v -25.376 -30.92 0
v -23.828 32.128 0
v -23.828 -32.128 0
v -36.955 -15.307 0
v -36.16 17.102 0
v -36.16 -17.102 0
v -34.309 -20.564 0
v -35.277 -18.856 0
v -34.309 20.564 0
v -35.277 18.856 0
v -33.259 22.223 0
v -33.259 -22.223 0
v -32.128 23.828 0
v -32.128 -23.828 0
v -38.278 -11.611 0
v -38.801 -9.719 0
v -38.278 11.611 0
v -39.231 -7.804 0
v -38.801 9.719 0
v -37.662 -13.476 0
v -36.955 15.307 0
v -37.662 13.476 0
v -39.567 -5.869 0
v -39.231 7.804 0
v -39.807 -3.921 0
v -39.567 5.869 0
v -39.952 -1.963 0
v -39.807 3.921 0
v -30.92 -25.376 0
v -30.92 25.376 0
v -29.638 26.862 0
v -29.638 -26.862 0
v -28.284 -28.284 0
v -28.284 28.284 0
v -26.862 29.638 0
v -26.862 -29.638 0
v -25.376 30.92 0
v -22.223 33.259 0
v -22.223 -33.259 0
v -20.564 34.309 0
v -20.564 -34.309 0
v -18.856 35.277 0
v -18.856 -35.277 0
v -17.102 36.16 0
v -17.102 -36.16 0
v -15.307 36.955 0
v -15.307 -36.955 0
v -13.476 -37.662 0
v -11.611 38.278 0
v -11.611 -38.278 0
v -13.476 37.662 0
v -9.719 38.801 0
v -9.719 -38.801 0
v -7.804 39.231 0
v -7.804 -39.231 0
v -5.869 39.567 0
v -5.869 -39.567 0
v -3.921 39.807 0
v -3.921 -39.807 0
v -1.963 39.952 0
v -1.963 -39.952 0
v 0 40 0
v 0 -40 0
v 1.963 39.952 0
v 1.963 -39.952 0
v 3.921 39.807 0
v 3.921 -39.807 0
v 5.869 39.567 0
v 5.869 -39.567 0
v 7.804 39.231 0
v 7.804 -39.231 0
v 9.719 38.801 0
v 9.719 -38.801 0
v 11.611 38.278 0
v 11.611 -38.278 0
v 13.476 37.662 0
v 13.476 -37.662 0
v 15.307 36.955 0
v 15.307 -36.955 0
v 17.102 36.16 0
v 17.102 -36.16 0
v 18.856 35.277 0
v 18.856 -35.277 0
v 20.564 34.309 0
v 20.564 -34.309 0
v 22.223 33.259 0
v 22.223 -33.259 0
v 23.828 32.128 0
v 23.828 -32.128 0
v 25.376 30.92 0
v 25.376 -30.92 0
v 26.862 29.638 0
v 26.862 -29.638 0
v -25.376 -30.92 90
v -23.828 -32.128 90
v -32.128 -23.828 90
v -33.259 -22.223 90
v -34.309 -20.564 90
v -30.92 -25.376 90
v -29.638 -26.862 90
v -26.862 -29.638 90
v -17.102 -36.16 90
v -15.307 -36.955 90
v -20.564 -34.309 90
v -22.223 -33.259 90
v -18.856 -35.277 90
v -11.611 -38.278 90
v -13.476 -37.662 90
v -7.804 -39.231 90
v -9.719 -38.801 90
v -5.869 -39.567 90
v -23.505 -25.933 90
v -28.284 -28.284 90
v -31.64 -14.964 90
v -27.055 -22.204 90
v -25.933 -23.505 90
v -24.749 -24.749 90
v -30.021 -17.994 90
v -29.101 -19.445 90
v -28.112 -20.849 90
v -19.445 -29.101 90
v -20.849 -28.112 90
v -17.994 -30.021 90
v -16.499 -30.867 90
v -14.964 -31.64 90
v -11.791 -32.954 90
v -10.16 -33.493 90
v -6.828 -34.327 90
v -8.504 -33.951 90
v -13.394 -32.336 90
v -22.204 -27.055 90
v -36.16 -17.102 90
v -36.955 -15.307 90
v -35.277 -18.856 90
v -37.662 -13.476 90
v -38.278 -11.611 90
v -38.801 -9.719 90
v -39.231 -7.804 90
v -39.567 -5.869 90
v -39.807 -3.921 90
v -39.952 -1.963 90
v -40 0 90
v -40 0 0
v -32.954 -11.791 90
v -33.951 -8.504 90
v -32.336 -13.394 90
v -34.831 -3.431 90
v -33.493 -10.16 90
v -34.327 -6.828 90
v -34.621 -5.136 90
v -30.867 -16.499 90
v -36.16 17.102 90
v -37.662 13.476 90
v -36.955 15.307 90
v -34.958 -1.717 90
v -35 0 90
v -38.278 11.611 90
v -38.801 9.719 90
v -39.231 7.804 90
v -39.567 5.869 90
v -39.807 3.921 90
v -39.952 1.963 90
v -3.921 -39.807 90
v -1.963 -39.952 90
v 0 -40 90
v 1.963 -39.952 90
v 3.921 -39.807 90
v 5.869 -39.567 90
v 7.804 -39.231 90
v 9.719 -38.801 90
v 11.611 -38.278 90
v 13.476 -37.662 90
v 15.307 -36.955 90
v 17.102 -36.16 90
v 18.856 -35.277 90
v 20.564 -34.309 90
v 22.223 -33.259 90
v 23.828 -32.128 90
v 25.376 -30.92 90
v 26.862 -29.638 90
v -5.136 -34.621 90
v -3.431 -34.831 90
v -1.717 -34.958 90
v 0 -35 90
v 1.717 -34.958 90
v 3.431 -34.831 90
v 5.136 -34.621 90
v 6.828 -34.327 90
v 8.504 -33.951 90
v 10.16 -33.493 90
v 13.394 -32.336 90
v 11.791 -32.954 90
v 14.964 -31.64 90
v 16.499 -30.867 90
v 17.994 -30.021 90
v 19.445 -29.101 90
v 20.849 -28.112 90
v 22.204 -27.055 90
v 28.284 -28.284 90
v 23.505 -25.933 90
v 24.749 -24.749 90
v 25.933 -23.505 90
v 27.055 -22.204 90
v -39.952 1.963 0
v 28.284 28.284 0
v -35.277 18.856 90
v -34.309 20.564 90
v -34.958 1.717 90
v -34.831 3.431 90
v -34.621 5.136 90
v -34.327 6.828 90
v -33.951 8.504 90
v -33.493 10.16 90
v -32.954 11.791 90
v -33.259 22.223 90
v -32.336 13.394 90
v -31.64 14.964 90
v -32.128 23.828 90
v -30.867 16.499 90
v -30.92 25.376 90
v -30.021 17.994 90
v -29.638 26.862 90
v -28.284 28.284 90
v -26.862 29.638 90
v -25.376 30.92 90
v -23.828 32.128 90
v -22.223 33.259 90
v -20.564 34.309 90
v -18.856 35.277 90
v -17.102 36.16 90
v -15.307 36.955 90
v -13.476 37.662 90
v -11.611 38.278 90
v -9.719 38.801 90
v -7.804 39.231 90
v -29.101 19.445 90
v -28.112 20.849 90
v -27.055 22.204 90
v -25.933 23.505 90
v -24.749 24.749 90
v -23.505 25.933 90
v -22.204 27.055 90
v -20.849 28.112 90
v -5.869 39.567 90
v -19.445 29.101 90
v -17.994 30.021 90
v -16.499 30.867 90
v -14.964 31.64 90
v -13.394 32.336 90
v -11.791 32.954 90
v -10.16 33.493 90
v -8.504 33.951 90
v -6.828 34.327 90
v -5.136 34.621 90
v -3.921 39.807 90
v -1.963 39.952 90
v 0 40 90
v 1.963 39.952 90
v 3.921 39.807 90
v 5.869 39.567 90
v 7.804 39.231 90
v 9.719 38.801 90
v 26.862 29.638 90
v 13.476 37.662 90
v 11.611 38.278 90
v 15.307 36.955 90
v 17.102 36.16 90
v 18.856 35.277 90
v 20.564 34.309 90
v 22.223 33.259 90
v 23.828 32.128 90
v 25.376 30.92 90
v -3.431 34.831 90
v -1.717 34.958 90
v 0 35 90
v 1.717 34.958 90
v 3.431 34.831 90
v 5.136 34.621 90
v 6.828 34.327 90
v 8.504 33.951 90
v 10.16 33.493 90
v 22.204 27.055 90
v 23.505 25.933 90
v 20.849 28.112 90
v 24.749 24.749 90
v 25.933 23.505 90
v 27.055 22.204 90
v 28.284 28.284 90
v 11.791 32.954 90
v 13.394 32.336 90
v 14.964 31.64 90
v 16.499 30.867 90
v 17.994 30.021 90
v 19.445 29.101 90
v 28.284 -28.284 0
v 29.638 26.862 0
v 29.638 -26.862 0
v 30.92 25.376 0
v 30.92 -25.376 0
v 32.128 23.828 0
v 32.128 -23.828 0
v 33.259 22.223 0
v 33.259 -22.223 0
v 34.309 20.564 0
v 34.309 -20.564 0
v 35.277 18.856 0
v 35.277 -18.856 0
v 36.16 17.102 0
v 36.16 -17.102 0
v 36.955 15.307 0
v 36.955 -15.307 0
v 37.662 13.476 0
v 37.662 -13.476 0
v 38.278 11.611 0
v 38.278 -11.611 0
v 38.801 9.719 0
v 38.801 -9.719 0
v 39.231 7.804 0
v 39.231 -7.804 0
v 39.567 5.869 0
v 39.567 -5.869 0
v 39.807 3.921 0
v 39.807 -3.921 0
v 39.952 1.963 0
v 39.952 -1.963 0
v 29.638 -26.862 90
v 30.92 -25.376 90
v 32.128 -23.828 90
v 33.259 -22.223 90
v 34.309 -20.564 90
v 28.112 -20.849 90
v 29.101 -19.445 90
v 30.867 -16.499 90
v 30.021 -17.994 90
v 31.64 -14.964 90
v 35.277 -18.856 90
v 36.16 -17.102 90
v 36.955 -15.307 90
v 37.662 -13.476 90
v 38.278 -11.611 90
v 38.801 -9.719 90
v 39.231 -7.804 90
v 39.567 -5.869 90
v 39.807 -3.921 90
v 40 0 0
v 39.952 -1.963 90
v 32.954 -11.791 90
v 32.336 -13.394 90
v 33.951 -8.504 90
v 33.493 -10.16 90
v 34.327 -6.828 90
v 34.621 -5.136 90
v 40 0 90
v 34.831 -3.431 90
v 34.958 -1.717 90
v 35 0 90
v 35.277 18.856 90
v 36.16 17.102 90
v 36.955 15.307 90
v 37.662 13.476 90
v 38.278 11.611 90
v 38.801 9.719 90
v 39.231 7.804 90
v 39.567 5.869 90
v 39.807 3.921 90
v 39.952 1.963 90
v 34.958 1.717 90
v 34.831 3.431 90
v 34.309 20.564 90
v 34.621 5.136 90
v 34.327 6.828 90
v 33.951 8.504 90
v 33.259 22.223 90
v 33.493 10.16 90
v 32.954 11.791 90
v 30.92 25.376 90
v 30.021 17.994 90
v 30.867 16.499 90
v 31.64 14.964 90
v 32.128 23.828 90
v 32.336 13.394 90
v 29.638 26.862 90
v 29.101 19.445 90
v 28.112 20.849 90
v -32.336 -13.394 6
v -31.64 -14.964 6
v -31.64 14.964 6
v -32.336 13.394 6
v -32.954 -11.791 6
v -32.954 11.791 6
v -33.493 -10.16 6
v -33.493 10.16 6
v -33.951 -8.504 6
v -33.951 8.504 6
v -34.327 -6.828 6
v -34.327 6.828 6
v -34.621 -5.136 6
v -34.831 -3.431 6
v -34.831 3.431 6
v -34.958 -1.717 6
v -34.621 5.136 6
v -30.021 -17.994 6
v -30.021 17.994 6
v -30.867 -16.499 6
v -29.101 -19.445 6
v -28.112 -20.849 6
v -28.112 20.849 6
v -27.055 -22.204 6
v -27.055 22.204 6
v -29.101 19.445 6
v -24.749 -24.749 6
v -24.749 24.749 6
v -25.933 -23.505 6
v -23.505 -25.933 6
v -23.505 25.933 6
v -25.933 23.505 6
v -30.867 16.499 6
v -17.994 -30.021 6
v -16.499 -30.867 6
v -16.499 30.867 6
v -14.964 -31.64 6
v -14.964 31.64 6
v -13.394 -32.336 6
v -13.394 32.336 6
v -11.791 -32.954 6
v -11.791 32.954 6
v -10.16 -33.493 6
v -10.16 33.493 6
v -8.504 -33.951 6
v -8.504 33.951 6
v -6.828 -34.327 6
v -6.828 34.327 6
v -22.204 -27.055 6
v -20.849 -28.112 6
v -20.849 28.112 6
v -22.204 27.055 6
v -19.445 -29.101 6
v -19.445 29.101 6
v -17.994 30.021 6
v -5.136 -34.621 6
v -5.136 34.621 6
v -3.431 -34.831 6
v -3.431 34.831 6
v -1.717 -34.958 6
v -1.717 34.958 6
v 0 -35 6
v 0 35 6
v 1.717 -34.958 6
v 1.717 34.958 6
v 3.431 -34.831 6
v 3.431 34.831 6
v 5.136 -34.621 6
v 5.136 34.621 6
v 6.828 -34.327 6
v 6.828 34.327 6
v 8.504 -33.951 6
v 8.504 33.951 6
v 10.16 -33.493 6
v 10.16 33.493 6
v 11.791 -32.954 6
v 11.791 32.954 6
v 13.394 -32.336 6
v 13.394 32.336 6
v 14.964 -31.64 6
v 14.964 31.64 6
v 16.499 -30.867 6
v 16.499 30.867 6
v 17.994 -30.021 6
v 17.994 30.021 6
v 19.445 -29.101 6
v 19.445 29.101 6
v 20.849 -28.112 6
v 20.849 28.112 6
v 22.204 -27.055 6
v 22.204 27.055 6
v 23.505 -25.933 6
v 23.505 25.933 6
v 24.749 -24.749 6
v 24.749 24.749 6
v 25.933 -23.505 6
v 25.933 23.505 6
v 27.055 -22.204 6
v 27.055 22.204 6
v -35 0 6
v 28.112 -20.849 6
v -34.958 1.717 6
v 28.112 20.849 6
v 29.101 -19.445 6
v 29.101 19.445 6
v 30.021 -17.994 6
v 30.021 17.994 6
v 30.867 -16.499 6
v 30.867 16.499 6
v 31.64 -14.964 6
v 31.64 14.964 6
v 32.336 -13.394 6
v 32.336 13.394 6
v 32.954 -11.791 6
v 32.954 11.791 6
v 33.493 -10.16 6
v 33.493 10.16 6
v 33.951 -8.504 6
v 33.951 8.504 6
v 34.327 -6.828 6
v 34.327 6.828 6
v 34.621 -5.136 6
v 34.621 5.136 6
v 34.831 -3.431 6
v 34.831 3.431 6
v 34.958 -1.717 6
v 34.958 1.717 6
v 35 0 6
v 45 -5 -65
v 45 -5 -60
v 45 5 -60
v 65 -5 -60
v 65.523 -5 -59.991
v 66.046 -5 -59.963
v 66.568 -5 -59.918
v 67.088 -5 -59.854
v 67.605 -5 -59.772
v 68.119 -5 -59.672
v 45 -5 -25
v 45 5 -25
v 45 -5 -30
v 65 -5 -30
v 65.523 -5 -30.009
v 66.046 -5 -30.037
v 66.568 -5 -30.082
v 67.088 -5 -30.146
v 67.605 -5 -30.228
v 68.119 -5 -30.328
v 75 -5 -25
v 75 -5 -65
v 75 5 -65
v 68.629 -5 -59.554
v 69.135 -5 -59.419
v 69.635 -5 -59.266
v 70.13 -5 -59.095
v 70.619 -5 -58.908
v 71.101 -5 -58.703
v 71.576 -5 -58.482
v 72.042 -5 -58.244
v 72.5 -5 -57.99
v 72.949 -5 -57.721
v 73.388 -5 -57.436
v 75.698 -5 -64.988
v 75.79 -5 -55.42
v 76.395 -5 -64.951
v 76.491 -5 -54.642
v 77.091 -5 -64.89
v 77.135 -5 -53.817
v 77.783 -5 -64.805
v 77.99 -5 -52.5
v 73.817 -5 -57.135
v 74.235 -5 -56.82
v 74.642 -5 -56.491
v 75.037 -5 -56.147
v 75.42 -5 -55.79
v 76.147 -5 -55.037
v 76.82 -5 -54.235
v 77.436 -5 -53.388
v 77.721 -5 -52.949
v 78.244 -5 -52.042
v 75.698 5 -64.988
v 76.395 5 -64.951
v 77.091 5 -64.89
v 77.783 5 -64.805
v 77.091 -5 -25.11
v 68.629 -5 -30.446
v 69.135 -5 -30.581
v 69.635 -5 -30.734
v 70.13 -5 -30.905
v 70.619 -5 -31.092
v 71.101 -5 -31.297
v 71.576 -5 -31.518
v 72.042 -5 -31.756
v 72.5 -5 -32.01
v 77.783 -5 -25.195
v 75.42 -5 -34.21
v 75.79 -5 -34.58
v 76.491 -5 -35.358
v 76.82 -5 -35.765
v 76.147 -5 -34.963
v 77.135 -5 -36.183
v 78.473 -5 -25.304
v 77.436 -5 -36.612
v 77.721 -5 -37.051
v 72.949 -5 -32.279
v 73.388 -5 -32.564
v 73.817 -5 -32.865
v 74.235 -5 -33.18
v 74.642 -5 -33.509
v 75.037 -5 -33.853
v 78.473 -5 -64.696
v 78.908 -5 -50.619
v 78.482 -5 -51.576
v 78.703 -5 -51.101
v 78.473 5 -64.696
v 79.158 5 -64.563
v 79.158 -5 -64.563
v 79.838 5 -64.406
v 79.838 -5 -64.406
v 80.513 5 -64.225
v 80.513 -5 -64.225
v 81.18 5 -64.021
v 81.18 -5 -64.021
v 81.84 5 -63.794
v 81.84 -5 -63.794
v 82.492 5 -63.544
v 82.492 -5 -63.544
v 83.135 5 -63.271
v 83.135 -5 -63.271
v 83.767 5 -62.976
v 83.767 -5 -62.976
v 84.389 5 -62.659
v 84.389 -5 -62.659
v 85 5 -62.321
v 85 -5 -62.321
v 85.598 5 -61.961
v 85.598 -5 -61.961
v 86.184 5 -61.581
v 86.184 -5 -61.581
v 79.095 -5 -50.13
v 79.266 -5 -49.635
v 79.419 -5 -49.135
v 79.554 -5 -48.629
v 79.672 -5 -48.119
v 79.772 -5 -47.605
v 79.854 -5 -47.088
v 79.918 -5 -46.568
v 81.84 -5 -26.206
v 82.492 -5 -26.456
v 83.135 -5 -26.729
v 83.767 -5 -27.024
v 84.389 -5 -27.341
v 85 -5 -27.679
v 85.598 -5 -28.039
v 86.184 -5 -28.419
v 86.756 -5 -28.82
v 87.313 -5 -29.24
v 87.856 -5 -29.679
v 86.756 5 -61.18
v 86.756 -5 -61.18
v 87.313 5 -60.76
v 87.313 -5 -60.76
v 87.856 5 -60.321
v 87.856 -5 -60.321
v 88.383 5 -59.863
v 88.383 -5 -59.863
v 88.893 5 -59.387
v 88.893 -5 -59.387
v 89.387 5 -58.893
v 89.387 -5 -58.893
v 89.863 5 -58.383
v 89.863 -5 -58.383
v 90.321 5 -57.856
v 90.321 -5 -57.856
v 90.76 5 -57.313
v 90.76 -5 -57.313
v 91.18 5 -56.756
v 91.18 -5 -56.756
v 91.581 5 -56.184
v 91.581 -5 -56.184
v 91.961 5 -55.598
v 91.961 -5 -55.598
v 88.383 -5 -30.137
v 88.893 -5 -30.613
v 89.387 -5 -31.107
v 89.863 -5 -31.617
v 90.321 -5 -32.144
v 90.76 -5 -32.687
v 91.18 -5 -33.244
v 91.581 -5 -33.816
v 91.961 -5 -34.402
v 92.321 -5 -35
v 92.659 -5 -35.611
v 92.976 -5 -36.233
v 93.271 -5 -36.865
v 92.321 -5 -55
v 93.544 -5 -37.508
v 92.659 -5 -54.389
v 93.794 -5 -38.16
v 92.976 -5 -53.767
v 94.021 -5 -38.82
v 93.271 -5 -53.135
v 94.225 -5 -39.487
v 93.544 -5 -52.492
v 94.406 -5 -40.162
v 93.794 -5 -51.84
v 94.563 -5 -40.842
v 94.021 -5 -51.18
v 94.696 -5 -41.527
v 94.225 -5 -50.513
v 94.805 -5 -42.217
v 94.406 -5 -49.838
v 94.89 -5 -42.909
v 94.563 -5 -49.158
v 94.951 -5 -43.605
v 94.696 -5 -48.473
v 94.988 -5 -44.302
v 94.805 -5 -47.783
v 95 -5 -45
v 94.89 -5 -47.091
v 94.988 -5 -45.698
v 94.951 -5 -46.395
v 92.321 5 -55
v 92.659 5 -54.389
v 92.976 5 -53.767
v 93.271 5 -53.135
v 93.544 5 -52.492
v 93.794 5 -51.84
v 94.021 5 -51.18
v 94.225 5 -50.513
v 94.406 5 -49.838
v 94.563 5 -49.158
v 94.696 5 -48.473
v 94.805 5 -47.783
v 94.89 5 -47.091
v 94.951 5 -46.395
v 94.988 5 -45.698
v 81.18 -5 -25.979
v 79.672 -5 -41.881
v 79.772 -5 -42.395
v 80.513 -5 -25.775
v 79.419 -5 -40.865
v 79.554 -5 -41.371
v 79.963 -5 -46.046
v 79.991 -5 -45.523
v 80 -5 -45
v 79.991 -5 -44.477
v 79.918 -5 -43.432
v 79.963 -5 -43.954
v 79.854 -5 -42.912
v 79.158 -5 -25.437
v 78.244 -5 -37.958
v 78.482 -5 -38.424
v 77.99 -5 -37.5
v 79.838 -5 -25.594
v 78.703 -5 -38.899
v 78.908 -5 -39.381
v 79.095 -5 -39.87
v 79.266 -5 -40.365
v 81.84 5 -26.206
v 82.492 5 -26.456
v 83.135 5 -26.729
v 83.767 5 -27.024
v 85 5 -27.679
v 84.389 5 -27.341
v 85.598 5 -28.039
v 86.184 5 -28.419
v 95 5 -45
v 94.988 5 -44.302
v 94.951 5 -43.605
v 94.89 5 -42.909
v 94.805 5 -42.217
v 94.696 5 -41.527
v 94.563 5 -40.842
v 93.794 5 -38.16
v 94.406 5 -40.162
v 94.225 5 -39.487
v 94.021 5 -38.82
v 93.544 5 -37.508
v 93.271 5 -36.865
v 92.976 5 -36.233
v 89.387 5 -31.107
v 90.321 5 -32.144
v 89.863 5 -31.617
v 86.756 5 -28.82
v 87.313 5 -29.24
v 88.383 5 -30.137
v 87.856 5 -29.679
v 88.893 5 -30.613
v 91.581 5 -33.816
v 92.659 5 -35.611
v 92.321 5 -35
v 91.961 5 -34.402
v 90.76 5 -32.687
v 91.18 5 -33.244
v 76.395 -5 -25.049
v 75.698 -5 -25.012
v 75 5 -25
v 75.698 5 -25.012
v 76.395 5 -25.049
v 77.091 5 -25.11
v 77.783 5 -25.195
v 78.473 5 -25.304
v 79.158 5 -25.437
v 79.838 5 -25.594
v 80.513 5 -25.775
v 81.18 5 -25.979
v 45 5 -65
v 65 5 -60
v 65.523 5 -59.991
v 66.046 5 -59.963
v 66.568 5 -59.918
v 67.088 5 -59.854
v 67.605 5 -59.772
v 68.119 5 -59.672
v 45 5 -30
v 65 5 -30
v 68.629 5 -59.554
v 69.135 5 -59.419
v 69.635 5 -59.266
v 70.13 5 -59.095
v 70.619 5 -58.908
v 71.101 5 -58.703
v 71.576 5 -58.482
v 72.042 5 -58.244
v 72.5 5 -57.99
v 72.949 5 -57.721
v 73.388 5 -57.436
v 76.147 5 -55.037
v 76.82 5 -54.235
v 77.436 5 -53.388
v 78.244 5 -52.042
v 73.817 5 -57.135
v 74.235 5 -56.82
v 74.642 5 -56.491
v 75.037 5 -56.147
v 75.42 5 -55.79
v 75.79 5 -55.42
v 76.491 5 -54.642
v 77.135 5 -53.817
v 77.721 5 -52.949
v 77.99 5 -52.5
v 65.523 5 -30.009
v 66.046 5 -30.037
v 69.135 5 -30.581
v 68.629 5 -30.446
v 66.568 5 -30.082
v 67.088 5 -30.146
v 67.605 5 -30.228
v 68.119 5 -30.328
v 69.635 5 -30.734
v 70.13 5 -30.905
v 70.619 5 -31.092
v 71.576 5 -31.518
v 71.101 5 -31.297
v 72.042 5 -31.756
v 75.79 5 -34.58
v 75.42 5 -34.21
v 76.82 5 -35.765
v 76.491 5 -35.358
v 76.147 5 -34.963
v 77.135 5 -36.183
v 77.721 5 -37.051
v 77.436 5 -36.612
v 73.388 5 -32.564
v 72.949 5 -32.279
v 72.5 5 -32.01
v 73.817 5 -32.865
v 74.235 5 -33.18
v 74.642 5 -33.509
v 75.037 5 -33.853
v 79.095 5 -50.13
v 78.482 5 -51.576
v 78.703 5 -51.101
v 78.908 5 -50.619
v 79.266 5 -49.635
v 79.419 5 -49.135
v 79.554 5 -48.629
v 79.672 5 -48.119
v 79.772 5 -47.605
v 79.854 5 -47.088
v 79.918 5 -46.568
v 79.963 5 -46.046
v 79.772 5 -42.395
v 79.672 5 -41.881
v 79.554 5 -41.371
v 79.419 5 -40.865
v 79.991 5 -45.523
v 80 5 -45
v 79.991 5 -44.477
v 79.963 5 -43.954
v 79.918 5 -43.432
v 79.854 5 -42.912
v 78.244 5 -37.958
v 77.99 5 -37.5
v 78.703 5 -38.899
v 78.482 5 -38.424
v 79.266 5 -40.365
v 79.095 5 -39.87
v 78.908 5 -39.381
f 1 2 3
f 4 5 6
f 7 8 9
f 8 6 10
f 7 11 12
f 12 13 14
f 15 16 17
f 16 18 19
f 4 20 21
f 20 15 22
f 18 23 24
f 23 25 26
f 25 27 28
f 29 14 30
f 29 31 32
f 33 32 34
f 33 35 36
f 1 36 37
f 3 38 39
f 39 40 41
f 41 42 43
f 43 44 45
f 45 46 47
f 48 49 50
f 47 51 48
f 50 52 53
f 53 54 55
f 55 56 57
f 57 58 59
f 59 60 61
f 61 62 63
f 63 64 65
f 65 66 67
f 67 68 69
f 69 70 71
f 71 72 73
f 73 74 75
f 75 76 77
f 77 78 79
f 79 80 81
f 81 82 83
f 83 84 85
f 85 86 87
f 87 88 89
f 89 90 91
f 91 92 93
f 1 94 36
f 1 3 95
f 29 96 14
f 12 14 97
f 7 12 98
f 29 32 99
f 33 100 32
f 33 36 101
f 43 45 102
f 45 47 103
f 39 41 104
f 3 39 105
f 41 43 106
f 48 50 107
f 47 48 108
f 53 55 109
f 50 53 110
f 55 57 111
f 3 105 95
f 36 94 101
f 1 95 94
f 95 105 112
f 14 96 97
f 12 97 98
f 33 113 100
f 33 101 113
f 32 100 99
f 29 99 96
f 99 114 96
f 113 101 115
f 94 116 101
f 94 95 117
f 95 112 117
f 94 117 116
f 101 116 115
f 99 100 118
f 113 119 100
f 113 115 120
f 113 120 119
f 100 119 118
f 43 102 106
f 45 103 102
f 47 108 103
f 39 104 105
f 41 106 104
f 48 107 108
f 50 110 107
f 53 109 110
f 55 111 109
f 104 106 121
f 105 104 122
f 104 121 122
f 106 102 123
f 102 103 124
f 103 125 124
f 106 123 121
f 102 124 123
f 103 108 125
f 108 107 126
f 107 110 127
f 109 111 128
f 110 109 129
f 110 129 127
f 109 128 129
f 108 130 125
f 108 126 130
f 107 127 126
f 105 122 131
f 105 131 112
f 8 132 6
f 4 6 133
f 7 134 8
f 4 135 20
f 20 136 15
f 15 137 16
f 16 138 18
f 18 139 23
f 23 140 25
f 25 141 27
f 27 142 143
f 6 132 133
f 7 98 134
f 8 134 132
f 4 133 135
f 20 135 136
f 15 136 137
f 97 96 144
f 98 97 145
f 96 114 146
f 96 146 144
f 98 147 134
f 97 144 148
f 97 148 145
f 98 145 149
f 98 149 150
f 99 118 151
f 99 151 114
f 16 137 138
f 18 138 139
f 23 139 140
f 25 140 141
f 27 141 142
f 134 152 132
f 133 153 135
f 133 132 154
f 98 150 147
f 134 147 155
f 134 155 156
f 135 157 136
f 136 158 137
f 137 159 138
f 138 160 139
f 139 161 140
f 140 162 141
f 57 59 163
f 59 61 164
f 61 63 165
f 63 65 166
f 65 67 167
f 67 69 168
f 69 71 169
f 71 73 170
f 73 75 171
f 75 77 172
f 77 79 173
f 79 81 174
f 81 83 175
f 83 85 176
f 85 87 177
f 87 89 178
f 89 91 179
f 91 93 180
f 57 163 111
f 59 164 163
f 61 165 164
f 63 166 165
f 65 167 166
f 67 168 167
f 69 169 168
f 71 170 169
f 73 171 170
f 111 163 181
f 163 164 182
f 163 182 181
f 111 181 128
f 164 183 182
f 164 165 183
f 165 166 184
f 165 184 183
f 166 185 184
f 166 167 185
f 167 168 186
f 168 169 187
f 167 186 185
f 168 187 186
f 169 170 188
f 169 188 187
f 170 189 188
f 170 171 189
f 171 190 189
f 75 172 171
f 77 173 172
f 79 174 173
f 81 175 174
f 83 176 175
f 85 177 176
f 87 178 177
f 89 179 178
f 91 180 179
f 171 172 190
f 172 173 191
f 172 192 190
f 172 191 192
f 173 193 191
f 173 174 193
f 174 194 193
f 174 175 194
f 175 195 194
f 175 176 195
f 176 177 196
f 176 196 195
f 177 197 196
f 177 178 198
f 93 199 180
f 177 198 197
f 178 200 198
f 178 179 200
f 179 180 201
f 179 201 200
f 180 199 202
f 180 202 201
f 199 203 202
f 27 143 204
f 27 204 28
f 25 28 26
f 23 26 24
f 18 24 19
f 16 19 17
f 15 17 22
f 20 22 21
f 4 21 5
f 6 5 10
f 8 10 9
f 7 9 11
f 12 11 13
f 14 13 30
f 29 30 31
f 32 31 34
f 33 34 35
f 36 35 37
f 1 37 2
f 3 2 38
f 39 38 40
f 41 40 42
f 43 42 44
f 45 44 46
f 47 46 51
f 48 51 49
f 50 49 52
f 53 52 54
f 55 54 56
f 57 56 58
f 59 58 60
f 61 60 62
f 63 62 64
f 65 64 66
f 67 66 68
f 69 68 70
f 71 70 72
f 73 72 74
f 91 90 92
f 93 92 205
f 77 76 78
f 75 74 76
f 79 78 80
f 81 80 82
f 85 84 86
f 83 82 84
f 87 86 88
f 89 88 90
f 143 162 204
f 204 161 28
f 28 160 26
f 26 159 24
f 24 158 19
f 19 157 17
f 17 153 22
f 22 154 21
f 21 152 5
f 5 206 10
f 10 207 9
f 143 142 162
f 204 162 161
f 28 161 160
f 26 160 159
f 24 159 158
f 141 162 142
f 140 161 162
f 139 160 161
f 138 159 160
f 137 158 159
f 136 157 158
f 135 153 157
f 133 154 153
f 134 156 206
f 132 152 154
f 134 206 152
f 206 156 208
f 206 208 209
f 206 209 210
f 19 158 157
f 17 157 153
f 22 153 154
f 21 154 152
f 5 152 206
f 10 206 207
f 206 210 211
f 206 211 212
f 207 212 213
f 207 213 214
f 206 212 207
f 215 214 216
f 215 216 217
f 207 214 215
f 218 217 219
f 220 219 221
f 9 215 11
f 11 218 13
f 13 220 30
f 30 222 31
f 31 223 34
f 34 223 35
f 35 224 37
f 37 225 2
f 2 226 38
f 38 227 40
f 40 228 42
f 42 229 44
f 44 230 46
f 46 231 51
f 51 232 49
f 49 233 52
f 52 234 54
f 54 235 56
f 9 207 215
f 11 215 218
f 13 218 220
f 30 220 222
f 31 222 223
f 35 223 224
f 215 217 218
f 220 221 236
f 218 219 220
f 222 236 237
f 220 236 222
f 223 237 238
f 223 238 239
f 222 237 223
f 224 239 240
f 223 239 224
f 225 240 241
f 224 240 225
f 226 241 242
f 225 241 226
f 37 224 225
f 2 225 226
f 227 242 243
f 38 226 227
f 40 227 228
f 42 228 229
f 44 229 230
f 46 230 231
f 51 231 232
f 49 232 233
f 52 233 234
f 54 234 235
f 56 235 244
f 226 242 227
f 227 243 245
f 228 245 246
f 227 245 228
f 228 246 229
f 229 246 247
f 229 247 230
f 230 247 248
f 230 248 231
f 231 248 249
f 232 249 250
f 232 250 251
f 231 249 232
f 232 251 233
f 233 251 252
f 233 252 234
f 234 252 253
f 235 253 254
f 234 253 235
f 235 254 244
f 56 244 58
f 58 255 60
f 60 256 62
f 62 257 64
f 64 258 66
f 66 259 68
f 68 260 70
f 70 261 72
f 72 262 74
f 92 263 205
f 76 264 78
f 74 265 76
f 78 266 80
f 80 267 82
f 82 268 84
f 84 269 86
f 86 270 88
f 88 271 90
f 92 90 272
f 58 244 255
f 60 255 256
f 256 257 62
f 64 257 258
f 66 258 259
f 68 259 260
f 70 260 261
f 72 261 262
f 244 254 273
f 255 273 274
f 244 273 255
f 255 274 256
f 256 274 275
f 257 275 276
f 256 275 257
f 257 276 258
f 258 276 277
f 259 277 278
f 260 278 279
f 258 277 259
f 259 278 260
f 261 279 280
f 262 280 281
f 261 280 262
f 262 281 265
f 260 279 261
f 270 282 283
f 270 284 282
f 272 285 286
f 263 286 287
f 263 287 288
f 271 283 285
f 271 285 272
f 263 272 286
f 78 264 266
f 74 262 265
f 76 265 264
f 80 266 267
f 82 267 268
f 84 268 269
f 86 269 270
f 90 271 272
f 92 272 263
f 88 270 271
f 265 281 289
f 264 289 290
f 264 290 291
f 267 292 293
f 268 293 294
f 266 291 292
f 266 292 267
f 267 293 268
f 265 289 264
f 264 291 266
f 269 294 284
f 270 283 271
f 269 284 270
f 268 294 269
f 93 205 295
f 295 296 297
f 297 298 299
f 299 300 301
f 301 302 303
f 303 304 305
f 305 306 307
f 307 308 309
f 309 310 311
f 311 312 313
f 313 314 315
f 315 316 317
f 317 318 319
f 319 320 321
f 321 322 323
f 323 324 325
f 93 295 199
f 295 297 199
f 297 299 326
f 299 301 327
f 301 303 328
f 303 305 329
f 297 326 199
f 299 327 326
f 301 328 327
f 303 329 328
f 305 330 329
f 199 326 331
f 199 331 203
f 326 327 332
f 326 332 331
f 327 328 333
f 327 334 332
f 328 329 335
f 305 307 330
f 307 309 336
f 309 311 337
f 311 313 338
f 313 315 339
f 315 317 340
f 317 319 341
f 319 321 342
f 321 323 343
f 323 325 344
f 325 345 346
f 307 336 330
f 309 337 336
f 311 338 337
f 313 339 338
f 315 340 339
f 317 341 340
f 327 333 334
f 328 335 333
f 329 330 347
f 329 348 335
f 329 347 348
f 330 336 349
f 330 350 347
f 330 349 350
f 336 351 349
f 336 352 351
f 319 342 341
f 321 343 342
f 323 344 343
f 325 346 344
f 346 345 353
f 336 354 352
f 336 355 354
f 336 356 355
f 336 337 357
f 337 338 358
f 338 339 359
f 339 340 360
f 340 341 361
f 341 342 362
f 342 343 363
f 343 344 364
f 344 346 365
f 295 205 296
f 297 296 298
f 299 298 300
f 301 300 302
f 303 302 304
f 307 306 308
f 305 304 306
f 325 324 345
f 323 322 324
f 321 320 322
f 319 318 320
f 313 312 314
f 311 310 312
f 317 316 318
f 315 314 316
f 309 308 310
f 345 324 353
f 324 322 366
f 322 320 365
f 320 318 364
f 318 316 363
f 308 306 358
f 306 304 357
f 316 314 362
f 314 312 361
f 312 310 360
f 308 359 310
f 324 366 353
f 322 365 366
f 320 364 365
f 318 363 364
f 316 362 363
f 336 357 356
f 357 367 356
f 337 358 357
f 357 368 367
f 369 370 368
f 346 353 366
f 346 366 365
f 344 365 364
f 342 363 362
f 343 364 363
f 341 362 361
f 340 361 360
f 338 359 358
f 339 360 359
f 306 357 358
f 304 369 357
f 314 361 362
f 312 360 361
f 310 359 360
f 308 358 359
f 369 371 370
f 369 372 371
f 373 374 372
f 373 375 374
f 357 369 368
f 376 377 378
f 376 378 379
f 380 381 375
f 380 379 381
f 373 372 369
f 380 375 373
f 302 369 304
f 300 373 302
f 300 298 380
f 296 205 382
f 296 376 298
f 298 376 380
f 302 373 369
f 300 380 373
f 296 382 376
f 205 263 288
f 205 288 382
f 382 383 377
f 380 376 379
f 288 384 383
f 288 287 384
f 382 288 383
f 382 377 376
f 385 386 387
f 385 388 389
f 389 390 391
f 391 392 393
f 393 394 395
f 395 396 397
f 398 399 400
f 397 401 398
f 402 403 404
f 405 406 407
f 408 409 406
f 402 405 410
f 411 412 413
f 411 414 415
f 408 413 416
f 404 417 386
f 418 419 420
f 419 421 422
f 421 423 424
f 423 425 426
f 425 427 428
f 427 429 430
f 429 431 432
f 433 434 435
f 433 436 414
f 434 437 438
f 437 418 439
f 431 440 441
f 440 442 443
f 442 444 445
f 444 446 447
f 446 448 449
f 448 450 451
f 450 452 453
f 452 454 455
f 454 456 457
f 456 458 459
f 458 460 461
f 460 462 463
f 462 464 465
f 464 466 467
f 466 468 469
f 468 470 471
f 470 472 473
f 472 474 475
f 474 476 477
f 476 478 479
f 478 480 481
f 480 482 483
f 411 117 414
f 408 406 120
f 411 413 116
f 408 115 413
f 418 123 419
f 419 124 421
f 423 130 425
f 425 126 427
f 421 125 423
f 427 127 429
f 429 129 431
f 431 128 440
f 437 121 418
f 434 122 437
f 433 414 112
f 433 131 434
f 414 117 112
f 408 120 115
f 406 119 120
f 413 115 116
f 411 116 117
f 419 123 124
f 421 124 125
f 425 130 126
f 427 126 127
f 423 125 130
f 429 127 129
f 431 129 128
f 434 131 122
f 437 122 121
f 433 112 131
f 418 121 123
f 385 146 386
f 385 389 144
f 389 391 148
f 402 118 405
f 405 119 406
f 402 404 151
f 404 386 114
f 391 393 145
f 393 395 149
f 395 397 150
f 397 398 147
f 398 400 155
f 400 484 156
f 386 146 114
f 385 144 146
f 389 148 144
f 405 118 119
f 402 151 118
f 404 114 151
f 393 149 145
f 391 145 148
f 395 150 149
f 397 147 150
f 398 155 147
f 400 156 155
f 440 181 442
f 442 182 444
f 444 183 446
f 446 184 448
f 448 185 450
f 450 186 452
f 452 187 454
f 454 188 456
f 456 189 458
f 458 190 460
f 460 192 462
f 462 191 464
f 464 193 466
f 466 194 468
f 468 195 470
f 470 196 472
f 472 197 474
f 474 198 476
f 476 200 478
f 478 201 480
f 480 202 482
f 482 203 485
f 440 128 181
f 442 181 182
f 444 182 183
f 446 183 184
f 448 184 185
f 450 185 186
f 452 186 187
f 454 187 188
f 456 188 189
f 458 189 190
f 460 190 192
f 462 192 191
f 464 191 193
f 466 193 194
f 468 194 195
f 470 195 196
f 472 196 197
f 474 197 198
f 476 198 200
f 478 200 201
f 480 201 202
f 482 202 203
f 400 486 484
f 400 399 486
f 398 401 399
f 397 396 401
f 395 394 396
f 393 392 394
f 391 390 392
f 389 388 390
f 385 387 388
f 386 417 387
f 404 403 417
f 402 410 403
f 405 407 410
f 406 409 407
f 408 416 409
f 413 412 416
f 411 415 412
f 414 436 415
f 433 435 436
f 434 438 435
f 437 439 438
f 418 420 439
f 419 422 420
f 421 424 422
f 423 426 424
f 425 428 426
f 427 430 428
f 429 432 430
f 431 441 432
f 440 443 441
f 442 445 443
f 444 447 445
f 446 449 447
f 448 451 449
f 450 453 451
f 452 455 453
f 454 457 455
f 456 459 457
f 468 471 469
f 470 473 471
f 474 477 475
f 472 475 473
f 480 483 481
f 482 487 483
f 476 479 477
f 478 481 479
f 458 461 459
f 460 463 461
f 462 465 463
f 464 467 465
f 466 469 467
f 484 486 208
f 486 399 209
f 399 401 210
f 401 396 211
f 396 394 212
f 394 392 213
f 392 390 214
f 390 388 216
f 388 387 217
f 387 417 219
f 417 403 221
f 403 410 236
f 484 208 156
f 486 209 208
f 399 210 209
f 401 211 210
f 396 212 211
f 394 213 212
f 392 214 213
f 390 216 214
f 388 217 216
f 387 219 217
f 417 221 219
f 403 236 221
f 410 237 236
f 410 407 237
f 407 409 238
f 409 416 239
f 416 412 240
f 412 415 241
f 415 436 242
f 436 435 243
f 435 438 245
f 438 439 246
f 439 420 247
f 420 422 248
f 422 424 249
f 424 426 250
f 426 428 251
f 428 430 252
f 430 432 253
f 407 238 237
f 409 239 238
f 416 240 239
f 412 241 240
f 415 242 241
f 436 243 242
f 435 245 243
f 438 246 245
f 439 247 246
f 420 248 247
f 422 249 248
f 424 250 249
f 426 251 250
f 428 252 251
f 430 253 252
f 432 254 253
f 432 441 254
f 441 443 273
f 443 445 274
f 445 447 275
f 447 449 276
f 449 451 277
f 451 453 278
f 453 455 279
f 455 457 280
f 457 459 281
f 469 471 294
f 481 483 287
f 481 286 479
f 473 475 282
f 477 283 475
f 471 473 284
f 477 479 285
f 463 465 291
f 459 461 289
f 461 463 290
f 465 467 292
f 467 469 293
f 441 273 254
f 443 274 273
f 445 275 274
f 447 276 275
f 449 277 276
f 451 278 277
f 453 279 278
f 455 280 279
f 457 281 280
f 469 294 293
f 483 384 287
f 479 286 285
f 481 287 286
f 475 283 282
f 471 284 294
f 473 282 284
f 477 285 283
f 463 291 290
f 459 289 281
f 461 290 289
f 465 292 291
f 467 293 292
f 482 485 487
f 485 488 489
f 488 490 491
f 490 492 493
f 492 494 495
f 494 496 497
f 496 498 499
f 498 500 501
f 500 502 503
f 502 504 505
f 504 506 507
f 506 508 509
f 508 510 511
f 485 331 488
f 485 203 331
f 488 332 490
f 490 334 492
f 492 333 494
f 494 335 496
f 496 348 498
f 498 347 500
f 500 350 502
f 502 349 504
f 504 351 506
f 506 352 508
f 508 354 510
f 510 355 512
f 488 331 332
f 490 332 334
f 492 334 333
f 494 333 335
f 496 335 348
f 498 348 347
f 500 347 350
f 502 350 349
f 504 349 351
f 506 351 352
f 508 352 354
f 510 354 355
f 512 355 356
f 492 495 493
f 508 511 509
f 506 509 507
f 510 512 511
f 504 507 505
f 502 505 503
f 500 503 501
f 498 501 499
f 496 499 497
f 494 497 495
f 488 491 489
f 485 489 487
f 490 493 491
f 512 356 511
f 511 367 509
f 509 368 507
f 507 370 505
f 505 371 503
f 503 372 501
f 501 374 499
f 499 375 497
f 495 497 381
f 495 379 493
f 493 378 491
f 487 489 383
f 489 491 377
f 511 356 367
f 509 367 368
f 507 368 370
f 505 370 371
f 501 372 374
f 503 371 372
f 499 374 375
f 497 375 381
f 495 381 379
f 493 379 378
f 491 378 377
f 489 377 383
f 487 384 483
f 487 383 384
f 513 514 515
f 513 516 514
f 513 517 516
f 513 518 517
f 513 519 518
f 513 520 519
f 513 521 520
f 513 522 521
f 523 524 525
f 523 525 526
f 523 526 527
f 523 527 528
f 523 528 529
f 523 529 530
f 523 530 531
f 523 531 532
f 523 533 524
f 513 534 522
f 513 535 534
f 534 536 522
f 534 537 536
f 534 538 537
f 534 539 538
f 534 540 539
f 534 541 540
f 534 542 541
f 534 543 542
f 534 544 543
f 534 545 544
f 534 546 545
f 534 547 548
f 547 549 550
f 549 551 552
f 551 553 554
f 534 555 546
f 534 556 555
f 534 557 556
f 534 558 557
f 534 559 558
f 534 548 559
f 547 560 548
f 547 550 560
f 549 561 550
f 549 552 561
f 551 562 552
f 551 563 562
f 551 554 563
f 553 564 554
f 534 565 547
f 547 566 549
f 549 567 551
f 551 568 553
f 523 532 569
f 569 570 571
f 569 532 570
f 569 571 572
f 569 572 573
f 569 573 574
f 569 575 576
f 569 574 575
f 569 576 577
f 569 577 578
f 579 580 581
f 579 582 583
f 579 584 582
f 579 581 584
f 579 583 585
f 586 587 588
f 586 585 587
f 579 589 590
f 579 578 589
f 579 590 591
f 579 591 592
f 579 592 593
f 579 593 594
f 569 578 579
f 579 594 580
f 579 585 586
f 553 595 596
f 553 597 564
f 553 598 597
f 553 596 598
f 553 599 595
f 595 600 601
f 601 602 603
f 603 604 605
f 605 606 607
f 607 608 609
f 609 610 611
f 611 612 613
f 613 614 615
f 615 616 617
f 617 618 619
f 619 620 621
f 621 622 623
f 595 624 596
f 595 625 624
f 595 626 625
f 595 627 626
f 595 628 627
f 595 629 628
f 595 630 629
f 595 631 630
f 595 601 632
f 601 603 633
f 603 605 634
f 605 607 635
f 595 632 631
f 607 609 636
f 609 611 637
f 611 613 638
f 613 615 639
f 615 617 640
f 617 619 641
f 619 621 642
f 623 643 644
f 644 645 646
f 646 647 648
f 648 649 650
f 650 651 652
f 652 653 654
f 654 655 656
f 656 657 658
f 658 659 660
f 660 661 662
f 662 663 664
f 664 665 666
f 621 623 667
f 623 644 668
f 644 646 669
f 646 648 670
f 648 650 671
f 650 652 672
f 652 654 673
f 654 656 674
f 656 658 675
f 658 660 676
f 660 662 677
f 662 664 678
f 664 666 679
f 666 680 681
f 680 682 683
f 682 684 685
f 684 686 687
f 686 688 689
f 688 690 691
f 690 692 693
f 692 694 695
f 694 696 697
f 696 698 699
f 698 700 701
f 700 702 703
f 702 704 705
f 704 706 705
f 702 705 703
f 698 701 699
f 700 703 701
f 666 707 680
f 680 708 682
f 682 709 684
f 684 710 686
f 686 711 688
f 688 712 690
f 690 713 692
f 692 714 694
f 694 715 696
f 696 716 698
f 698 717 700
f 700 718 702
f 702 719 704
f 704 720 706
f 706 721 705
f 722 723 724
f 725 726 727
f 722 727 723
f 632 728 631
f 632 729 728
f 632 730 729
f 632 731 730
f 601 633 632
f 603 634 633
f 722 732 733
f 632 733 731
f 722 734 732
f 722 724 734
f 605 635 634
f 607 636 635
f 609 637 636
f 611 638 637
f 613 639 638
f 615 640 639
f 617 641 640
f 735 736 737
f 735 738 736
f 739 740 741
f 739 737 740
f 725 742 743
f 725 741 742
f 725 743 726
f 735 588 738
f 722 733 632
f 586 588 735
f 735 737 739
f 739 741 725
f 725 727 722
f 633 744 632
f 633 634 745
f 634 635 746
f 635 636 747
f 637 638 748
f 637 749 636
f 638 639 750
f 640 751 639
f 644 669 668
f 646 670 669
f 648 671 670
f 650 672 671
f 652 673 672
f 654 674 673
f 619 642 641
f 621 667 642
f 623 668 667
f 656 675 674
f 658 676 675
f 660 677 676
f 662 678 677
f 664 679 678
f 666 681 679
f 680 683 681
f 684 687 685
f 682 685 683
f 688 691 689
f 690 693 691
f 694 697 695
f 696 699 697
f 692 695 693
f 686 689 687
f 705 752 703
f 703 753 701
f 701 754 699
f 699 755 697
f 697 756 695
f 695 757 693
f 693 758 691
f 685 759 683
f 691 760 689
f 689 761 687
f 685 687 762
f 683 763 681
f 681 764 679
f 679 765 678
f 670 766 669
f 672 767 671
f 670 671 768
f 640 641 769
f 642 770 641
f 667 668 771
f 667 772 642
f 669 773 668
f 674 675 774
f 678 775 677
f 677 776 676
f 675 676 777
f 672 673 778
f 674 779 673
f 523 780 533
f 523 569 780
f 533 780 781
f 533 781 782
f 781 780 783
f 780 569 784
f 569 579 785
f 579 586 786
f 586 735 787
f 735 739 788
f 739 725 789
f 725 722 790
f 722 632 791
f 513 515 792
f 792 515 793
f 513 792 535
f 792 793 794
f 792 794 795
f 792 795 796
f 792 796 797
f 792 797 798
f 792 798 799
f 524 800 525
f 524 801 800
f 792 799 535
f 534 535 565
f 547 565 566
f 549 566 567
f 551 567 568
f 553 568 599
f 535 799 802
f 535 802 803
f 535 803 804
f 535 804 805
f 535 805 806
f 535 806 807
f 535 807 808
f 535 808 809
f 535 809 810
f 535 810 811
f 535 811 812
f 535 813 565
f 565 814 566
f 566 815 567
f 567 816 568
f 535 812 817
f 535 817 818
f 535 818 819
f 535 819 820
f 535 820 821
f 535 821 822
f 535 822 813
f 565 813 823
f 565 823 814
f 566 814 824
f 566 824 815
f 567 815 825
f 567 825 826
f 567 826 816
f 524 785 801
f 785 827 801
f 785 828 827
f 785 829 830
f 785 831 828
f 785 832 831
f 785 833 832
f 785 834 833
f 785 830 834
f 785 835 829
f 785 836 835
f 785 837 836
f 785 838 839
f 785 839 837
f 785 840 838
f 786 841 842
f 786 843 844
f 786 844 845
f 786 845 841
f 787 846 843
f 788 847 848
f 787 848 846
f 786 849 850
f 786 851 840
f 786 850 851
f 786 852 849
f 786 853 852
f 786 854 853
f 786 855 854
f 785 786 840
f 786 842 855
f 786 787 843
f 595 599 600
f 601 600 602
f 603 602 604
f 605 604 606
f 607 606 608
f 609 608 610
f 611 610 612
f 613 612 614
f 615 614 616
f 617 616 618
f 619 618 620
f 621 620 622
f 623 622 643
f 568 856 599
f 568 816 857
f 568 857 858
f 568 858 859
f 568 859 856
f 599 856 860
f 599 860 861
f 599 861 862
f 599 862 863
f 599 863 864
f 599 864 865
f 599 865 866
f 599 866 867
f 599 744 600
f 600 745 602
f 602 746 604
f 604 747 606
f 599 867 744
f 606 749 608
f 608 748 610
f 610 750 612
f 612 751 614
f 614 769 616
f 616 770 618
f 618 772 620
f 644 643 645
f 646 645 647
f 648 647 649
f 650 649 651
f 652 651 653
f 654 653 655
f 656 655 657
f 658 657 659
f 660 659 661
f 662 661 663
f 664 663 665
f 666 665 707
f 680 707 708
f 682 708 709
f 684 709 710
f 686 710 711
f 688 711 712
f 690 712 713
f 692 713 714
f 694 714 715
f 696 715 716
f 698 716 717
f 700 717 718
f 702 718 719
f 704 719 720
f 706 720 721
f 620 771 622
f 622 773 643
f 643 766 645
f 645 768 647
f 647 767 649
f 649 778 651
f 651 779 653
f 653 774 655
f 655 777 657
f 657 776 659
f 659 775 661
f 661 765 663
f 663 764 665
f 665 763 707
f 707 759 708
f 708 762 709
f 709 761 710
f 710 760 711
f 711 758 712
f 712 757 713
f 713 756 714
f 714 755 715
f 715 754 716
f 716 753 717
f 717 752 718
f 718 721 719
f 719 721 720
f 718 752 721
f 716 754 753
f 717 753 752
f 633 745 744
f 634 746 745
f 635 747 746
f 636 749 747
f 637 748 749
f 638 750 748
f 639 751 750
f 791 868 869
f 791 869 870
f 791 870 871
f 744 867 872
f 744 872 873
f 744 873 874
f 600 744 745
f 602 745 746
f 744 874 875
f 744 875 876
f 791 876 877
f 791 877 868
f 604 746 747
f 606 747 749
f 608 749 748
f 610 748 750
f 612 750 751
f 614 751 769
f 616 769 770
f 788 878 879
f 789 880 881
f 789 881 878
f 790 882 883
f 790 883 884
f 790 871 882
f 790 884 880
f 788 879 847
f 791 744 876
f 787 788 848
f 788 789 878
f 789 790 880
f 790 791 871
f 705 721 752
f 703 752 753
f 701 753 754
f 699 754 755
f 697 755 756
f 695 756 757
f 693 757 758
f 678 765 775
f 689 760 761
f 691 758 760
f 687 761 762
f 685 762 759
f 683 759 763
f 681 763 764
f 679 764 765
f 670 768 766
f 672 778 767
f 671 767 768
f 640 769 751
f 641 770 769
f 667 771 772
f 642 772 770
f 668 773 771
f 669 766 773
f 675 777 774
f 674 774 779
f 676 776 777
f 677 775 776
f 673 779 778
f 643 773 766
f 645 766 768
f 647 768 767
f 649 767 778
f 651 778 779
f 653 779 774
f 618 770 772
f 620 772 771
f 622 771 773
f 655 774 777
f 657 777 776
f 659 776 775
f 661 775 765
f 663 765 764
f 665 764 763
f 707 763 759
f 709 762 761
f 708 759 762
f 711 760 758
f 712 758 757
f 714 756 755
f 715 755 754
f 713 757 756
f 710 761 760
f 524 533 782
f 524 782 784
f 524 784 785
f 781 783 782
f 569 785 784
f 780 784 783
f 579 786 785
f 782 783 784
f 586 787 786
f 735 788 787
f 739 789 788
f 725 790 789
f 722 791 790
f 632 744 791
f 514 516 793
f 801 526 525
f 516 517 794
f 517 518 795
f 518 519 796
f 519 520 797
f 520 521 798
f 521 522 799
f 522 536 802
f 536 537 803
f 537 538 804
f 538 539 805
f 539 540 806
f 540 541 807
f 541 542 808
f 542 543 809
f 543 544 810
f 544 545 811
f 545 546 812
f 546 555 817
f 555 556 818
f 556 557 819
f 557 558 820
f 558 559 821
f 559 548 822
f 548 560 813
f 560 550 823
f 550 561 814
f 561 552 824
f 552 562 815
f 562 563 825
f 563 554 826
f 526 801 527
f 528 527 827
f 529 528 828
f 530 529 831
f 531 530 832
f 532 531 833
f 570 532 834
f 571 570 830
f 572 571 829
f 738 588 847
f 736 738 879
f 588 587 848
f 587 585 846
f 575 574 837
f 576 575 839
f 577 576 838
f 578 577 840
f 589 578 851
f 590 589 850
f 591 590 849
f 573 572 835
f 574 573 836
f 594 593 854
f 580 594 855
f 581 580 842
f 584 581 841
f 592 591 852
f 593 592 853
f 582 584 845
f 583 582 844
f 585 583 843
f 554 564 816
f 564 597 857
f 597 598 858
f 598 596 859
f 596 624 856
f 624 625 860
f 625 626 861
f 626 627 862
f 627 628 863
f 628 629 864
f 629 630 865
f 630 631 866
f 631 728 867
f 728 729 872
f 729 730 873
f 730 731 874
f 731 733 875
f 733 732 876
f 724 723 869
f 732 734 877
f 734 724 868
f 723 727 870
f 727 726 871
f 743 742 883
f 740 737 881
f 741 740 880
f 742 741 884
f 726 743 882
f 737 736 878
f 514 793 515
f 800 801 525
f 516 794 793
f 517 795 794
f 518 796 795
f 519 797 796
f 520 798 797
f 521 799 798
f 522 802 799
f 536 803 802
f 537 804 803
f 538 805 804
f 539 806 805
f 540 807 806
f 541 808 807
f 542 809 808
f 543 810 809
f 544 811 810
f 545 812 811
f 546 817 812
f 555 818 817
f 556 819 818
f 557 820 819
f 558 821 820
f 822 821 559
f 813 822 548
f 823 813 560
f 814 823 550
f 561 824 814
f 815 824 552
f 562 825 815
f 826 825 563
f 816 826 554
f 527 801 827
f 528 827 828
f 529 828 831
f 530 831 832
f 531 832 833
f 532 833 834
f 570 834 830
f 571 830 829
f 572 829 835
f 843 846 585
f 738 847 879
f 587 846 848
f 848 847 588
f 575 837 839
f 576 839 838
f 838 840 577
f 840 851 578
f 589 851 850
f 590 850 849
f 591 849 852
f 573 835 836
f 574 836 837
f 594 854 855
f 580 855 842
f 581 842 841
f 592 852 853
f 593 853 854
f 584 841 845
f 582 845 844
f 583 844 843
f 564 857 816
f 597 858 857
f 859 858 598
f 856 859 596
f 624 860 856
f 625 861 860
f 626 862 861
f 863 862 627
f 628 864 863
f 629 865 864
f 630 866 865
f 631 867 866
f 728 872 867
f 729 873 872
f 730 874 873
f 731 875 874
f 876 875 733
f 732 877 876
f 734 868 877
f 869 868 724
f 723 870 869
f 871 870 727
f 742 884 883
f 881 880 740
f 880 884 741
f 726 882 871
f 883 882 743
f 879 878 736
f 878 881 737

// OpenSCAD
$fn = 128;

// ===== Mug dimensions =====
outer_d  = 80;   // mm
inner_d  = 70;   // mm
mug_h    = 90;   // mm
bottom_t = 6;    // mm

// ===== Handle inner opening requirement =====
// inner void: height 30mm (Z) x width 25mm (radial X)
void_h = 30;
void_w = 25;

// ===== Handle thickness =====
t_radial = 5;    // ring thickness in XZ profile
t_depth  = 10;   // thickness along Y

r_outer = outer_d / 2;

// Centers for vertical placement (middle of mug)
zc = mug_h / 2;
zi0 = zc - void_h/2;
zi1 = zc + void_h/2;

// D-profile radii (in XZ)
ri = void_h / 2;          // inner semicircle radius = 15
ro = ri + t_radial;       // outer semicircle radius = 20

// X positions so inner flat side touches mug at +X tangent plane
x_flat_inner = r_outer;               // contact plane with mug
x_flat_outer = x_flat_inner + t_radial;

x_ci = x_flat_inner + void_w;         // inner semicircle center x
x_co = x_flat_outer + void_w + t_radial; // outer semicircle center x

module d_profile(x_flat, z0, z1, x_c, r) {
    polygon(points = concat(
        [[x_flat, z0], [x_flat, z1]],
        [for (a = [90:-2:-90]) [x_c + r*cos(a), zc + r*sin(a)]]
    ));
}

module mug_body() {
    difference() {
        cylinder(h = mug_h, d = outer_d);
        translate([0,0,bottom_t])
            cylinder(h = mug_h - bottom_t + 0.01, d = inner_d);
    }
}

module handle() {
    // D-ring extruded along Y and centered at y=0
    difference() {
        translate([0, -t_depth/2, 0])
            rotate([-90,0,0])
                linear_extrude(height = t_depth)
                    d_profile(x_flat_outer, zi0 - t_radial, zi1 + t_radial, x_co, ro);

        translate([0, -(t_depth/2 + 0.1), 0])
            rotate([-90,0,0])
                linear_extrude(height = t_depth + 0.2)
                    d_profile(x_flat_inner, zi0, zi1, x_ci, ri);
    }
}

union() {
    mug_body();
    handle();   // attached on +X side only
}
